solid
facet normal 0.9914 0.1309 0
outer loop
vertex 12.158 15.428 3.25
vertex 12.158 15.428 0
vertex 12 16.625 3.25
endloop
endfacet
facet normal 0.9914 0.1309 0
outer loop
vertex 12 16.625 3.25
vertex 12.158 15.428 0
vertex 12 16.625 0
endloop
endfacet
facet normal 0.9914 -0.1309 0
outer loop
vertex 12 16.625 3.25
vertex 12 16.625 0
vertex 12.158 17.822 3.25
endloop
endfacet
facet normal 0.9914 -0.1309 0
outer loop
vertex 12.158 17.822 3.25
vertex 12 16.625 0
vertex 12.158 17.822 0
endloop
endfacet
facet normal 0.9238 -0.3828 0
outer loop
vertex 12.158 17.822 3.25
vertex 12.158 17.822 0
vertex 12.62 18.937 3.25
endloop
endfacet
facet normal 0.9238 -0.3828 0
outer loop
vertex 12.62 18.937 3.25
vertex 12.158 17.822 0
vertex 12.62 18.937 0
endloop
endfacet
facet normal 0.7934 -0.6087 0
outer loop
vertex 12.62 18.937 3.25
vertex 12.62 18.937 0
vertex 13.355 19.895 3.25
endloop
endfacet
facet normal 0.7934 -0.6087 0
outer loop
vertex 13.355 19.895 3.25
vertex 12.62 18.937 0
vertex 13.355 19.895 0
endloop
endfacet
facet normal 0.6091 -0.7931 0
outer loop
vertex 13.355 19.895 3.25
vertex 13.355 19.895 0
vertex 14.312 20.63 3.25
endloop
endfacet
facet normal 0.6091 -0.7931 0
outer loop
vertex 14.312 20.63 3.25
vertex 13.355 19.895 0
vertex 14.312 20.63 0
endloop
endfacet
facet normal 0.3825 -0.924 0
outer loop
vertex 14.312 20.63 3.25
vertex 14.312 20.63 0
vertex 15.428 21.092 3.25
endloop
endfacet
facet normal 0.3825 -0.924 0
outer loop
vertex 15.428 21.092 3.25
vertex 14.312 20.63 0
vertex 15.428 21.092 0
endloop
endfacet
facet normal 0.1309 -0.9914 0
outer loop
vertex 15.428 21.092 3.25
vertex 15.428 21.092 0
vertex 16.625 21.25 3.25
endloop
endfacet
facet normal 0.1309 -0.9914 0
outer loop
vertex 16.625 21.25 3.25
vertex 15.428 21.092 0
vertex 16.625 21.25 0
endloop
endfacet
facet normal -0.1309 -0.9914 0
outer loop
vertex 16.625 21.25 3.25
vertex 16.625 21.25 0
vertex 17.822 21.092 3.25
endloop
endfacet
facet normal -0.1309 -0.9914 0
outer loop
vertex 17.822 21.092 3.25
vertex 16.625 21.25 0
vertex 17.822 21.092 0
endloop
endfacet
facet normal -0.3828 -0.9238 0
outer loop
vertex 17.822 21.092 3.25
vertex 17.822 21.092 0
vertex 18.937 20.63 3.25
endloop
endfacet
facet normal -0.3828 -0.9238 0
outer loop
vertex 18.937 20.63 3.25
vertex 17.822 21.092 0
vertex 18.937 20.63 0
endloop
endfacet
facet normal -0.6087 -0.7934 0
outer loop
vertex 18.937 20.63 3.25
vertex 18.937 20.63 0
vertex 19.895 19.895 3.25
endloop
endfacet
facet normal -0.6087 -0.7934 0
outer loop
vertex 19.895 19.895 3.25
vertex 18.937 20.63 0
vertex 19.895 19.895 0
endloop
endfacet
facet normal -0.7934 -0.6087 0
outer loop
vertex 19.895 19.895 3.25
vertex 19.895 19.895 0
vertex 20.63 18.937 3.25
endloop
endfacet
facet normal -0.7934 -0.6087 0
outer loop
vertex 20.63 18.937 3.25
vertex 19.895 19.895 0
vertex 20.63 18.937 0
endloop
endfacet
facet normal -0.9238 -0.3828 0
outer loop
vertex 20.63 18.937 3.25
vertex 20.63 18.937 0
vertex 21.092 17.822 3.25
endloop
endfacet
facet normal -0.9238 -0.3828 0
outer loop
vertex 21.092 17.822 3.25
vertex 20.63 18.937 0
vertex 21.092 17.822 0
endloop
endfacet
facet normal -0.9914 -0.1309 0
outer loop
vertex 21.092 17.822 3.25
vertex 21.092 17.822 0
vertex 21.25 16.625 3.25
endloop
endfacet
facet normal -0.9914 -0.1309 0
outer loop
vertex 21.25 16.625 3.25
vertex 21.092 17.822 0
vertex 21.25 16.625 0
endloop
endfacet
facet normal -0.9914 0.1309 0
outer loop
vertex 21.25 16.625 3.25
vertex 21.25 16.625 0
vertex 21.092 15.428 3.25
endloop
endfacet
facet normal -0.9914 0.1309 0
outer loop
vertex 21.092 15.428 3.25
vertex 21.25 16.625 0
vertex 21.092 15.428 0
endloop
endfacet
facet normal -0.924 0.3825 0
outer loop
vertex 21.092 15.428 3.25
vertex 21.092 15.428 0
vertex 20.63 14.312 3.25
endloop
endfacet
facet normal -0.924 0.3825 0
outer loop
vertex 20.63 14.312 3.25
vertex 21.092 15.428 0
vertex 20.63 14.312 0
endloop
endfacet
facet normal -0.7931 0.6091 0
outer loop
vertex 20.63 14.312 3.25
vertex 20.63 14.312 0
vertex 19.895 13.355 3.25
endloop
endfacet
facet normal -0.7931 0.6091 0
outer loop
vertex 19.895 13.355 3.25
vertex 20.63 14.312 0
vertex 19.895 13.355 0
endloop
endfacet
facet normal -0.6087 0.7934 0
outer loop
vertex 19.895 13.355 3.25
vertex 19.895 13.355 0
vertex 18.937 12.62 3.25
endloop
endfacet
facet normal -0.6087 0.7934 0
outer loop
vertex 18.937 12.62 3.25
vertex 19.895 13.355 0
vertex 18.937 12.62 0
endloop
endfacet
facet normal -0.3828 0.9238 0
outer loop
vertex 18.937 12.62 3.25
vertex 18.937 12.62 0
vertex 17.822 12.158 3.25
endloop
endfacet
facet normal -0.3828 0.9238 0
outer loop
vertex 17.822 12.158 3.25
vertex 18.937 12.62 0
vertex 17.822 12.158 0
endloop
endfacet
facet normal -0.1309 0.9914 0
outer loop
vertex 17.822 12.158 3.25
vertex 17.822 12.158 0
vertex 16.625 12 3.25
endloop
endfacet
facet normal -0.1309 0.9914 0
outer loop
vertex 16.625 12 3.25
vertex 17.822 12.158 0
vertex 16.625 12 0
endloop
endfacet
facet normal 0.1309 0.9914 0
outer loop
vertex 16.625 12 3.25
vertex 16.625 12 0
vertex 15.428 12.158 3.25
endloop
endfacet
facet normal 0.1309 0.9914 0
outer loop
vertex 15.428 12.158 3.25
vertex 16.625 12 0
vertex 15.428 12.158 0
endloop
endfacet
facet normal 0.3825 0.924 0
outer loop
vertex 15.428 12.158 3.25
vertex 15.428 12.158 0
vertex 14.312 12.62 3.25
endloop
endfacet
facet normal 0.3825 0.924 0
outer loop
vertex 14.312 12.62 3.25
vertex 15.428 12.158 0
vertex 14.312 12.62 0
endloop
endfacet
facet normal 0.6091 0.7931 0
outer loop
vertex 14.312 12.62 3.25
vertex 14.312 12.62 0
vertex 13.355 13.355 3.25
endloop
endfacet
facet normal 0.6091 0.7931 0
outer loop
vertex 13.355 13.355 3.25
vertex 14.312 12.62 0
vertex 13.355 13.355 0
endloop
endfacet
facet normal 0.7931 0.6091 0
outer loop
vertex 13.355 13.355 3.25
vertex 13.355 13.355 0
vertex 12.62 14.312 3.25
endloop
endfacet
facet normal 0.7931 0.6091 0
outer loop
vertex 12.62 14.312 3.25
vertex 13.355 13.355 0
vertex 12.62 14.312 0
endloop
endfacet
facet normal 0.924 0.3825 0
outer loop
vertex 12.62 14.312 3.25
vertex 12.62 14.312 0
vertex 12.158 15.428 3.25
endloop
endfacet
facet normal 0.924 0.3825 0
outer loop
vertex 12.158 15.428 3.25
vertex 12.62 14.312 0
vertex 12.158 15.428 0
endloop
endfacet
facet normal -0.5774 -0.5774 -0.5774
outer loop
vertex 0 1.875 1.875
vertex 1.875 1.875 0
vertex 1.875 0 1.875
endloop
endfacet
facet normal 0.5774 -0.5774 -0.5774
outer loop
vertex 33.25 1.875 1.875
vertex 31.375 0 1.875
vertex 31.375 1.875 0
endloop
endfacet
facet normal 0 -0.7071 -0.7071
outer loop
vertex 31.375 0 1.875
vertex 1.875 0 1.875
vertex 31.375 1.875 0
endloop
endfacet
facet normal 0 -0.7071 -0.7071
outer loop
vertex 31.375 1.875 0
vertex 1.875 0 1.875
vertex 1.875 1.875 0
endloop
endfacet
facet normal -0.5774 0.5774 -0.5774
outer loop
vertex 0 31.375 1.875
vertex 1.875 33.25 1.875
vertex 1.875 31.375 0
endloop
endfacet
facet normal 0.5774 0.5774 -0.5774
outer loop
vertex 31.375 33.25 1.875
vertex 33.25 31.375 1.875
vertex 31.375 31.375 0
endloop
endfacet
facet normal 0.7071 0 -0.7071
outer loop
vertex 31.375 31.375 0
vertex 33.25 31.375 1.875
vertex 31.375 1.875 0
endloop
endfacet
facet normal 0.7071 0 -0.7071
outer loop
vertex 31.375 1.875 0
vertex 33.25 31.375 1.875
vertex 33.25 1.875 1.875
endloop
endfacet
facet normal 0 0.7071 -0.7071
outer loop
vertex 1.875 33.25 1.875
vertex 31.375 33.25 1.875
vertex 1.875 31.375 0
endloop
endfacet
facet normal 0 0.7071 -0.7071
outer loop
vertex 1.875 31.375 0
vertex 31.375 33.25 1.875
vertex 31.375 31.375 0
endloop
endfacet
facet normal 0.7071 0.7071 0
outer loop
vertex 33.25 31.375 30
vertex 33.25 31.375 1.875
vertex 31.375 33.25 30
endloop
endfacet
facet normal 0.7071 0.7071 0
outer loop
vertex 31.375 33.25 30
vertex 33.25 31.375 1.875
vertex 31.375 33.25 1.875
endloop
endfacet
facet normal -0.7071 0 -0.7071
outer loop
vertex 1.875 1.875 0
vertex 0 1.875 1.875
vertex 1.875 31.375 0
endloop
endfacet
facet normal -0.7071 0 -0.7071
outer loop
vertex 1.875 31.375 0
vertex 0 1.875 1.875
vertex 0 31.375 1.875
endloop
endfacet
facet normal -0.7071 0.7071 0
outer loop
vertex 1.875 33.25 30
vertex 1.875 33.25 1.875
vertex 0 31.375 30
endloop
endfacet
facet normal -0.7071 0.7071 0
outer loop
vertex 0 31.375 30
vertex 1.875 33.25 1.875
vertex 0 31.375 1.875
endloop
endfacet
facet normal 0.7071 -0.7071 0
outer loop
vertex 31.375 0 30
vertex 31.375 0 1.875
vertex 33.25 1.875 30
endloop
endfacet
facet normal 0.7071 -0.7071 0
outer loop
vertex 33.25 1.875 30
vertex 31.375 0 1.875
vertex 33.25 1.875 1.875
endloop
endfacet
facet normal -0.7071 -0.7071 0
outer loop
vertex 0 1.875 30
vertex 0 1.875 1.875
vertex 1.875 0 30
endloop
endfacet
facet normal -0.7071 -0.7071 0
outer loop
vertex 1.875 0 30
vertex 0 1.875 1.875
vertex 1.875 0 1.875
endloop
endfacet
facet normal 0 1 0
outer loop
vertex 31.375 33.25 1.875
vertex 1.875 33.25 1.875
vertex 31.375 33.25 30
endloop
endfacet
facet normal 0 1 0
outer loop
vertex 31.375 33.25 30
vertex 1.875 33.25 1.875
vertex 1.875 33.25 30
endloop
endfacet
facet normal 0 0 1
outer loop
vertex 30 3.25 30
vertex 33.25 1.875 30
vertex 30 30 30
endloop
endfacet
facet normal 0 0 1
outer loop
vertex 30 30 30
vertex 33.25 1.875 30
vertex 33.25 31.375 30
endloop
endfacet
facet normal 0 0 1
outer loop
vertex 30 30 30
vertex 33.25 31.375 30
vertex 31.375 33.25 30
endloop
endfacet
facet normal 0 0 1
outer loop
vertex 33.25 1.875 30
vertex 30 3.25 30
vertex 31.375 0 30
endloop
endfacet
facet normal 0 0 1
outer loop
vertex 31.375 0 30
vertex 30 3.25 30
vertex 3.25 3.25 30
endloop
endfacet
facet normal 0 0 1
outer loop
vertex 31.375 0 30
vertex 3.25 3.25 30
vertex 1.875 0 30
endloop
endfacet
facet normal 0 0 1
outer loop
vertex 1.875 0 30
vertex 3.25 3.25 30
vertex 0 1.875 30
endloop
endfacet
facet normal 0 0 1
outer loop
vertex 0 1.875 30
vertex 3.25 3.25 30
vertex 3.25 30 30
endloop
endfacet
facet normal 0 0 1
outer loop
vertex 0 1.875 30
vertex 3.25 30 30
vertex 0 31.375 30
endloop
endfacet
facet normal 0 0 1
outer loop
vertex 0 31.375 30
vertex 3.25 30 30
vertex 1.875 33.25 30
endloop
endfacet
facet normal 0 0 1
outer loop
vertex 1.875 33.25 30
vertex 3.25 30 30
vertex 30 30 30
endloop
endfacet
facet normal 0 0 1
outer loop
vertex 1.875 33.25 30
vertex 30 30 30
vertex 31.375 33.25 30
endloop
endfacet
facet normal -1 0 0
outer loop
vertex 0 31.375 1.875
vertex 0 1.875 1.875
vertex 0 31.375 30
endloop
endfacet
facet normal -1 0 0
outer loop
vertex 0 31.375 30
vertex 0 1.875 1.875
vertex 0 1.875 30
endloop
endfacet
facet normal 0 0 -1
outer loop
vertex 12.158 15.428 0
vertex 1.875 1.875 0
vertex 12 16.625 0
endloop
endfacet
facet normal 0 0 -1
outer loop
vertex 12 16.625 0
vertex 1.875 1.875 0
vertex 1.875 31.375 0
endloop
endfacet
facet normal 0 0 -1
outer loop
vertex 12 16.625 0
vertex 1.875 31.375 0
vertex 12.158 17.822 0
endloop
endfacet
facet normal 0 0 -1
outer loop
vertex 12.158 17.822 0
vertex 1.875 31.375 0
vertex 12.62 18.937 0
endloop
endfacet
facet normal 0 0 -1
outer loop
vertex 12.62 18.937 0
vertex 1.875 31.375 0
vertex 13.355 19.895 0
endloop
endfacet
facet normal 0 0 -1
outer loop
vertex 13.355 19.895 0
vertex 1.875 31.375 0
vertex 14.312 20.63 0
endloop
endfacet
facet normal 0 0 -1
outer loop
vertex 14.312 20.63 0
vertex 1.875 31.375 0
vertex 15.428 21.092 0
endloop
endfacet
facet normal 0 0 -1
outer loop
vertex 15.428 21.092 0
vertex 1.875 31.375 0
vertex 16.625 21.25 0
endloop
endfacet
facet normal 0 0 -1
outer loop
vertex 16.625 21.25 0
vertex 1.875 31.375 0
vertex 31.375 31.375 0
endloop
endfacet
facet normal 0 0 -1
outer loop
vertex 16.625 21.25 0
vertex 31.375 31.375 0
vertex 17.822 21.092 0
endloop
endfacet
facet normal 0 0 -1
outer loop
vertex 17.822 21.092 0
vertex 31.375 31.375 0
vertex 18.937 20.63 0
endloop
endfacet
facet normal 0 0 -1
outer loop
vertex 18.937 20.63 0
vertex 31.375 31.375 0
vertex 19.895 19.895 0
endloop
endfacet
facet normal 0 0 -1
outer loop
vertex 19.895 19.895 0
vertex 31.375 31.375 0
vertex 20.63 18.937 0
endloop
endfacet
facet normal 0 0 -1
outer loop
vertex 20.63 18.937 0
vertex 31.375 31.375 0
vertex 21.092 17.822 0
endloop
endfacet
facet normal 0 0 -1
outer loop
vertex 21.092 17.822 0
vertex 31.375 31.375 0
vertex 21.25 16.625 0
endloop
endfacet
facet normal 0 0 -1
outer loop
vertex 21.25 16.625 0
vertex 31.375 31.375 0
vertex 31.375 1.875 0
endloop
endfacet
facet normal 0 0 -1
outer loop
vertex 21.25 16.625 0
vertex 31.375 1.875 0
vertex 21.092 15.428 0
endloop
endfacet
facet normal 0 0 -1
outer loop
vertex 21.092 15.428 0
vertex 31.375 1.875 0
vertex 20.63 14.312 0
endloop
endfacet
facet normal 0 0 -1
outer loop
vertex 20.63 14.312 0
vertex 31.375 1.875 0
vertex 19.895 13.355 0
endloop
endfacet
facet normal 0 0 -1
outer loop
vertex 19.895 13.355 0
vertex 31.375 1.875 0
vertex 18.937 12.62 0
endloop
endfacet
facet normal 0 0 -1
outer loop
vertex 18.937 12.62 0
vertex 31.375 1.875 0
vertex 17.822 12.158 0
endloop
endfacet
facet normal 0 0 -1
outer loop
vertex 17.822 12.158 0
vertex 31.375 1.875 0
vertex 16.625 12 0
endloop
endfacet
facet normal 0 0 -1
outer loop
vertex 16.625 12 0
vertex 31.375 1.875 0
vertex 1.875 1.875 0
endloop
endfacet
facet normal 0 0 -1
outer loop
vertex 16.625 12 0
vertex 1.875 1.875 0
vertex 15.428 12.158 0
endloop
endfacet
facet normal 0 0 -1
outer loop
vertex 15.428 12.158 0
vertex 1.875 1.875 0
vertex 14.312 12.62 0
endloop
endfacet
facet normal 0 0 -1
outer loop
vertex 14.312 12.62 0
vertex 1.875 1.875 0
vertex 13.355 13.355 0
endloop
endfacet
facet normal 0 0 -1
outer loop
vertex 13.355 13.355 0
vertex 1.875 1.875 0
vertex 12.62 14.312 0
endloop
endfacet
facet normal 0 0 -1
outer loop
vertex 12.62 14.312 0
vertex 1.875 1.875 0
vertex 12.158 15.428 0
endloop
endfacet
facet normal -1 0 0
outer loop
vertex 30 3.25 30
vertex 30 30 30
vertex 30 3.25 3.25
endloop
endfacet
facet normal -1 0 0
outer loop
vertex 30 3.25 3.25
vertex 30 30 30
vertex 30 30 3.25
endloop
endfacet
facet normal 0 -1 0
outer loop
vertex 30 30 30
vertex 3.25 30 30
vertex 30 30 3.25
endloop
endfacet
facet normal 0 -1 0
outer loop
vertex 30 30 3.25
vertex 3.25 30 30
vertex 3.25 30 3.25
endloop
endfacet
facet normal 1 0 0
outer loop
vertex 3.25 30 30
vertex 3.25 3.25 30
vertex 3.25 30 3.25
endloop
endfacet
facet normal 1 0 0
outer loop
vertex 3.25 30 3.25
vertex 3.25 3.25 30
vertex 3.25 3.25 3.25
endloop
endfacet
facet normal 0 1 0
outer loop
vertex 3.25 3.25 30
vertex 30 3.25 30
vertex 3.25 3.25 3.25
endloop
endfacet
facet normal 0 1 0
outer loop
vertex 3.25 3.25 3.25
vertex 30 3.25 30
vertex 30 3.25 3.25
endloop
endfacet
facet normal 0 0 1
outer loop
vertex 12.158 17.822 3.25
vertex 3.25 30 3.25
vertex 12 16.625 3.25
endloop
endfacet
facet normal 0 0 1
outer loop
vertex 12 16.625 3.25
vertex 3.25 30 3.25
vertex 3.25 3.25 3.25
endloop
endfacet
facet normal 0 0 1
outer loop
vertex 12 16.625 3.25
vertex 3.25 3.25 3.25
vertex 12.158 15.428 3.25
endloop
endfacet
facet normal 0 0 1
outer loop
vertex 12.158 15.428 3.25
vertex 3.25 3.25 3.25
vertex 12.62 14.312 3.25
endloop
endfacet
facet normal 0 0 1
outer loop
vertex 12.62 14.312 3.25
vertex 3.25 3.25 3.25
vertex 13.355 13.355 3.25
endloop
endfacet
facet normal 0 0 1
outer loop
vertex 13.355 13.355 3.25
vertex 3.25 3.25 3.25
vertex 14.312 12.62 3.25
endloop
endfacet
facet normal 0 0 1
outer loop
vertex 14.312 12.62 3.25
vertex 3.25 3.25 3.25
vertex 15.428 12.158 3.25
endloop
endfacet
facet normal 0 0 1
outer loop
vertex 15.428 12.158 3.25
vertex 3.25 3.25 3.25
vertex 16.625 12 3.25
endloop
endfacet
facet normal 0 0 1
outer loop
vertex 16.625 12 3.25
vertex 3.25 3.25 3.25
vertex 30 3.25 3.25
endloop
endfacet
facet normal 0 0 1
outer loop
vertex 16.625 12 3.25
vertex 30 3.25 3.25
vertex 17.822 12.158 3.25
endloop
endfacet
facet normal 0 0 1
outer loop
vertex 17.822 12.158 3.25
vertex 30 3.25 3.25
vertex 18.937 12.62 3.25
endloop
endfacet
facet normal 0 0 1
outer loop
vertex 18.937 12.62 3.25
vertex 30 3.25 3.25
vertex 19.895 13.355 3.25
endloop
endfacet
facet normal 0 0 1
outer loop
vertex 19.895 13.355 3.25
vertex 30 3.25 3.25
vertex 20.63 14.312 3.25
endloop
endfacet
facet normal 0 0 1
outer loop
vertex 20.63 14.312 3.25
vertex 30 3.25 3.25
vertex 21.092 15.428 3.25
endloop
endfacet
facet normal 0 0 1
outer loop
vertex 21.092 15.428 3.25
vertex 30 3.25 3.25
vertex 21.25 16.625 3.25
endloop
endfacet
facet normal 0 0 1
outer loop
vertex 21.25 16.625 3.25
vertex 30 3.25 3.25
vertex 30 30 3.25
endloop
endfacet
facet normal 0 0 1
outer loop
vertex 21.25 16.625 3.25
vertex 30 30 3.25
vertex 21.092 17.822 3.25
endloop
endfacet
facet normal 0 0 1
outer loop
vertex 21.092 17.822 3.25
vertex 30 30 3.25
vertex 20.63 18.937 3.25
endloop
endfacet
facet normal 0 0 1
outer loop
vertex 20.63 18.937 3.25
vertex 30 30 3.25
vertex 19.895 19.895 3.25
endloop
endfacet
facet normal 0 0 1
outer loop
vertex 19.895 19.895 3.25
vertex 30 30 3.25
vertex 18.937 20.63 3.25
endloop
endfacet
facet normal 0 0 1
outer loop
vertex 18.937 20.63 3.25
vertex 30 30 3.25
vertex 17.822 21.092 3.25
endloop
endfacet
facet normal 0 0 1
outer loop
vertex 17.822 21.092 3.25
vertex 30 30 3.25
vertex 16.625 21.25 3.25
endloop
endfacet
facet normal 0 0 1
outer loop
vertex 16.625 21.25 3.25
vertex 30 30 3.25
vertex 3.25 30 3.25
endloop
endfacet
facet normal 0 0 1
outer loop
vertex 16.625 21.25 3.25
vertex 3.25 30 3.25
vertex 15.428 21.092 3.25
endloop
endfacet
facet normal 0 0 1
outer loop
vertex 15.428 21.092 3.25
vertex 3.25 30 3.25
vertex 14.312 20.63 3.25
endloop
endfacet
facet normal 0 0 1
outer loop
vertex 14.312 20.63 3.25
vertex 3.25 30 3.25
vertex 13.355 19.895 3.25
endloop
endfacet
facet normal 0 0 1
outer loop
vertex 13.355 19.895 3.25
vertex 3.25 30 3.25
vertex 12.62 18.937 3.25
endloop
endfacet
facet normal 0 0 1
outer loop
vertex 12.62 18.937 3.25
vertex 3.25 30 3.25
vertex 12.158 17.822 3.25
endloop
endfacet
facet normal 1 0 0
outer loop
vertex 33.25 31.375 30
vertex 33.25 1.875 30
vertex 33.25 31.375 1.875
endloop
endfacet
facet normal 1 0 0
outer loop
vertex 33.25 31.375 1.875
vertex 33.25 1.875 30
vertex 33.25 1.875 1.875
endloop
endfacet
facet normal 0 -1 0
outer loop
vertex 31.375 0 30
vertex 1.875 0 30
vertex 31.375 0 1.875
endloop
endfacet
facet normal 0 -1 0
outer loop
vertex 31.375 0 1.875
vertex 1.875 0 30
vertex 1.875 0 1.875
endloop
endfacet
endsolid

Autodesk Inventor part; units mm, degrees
ref_plane "YZ Plane" through (0, 0, 0) normal (1, 0, 0) x (0, 1, 0)
ref_plane "XZ Plane" through (0, 0, 0) normal (0, 1, 0) x (-1, 0, 0)
ref_plane "XY Plane" through (0, 0, 0) normal (0, 0, 1) x (1, 0, 0)
sketch "Sketch1" plane through (0, 0, 0) normal (0, 0, 1) x (1, 0, 0)
  line L0 (0, 0) -> (33.25, 0)
  line L1 (33.25, 0) -> (33.25, 33.25)
  line L2 (33.25, 33.25) -> (0, 33.25)
  line L3 (0, 33.25) -> (0, 0)
  dimension "d0" = 33.25
  dimension "d1" = 33.25
extrude "Extrusion1" add sketch "Sketch1" along normal blind 30
sketch "Sketch2" plane through (0, 0, 30) normal (0, 0, 1) x (1, 0, 0)
  point P0 (0, 0)
sketch "Sketch3" plane through (0, 0, 30) normal (0, 0, 1) x (1, 0, 0)
  line L0 (3.25, 3.25) -> (30, 3.25)
  line L1 (30, 3.25) -> (30, 30)
  line L2 (30, 30) -> (3.25, 30)
  line L3 (3.25, 30) -> (3.25, 3.25)
  line L4 (33.25, 0) -> (33.25, 33.25) projected
  line L5 (0, 0) -> (33.25, 0)
  line L6 (33.25, 0) -> (33.25, 33.25)
  line L7 (33.25, 33.25) -> (0, 33.25)
  line L8 (0, 33.25) -> (0, 0)
  dimension "d4" = 26.75
  dimension "d5" = 26.75
extrude "Extrusion2" cut sketch "Sketch3" against normal blind 26.75 contours L3 L2 L1 L0
chamfer "Chamfer1" distance 1.875 angle 45 8 edges at (33.25, 33.25, 15) (33.25, 0, 15) (0, 33.25, 15) (0, 0, 15) (0, 16.625, 0) (16.625, 33.25, 0) (16.625, 0, 0) (33.25, 16.625, 0)
sketch "Sketch4" plane through (0, 0, 0) normal (0, 0, -1) x (-1, 0, 0)
  circle A0 centre (-16.625, 16.625) radius 4.625
  point P0 (0, 0)
  dimension "d11" = 9.25
extrude "Extrusion3" cut sketch "Sketch4" against normal blind 10
thread "Thread1" size "M10x1.5" class "6H" standard "ANSI Metric M Profile" full length
properties part number "cuvette holder lid_with_threaded_escape_valve"
